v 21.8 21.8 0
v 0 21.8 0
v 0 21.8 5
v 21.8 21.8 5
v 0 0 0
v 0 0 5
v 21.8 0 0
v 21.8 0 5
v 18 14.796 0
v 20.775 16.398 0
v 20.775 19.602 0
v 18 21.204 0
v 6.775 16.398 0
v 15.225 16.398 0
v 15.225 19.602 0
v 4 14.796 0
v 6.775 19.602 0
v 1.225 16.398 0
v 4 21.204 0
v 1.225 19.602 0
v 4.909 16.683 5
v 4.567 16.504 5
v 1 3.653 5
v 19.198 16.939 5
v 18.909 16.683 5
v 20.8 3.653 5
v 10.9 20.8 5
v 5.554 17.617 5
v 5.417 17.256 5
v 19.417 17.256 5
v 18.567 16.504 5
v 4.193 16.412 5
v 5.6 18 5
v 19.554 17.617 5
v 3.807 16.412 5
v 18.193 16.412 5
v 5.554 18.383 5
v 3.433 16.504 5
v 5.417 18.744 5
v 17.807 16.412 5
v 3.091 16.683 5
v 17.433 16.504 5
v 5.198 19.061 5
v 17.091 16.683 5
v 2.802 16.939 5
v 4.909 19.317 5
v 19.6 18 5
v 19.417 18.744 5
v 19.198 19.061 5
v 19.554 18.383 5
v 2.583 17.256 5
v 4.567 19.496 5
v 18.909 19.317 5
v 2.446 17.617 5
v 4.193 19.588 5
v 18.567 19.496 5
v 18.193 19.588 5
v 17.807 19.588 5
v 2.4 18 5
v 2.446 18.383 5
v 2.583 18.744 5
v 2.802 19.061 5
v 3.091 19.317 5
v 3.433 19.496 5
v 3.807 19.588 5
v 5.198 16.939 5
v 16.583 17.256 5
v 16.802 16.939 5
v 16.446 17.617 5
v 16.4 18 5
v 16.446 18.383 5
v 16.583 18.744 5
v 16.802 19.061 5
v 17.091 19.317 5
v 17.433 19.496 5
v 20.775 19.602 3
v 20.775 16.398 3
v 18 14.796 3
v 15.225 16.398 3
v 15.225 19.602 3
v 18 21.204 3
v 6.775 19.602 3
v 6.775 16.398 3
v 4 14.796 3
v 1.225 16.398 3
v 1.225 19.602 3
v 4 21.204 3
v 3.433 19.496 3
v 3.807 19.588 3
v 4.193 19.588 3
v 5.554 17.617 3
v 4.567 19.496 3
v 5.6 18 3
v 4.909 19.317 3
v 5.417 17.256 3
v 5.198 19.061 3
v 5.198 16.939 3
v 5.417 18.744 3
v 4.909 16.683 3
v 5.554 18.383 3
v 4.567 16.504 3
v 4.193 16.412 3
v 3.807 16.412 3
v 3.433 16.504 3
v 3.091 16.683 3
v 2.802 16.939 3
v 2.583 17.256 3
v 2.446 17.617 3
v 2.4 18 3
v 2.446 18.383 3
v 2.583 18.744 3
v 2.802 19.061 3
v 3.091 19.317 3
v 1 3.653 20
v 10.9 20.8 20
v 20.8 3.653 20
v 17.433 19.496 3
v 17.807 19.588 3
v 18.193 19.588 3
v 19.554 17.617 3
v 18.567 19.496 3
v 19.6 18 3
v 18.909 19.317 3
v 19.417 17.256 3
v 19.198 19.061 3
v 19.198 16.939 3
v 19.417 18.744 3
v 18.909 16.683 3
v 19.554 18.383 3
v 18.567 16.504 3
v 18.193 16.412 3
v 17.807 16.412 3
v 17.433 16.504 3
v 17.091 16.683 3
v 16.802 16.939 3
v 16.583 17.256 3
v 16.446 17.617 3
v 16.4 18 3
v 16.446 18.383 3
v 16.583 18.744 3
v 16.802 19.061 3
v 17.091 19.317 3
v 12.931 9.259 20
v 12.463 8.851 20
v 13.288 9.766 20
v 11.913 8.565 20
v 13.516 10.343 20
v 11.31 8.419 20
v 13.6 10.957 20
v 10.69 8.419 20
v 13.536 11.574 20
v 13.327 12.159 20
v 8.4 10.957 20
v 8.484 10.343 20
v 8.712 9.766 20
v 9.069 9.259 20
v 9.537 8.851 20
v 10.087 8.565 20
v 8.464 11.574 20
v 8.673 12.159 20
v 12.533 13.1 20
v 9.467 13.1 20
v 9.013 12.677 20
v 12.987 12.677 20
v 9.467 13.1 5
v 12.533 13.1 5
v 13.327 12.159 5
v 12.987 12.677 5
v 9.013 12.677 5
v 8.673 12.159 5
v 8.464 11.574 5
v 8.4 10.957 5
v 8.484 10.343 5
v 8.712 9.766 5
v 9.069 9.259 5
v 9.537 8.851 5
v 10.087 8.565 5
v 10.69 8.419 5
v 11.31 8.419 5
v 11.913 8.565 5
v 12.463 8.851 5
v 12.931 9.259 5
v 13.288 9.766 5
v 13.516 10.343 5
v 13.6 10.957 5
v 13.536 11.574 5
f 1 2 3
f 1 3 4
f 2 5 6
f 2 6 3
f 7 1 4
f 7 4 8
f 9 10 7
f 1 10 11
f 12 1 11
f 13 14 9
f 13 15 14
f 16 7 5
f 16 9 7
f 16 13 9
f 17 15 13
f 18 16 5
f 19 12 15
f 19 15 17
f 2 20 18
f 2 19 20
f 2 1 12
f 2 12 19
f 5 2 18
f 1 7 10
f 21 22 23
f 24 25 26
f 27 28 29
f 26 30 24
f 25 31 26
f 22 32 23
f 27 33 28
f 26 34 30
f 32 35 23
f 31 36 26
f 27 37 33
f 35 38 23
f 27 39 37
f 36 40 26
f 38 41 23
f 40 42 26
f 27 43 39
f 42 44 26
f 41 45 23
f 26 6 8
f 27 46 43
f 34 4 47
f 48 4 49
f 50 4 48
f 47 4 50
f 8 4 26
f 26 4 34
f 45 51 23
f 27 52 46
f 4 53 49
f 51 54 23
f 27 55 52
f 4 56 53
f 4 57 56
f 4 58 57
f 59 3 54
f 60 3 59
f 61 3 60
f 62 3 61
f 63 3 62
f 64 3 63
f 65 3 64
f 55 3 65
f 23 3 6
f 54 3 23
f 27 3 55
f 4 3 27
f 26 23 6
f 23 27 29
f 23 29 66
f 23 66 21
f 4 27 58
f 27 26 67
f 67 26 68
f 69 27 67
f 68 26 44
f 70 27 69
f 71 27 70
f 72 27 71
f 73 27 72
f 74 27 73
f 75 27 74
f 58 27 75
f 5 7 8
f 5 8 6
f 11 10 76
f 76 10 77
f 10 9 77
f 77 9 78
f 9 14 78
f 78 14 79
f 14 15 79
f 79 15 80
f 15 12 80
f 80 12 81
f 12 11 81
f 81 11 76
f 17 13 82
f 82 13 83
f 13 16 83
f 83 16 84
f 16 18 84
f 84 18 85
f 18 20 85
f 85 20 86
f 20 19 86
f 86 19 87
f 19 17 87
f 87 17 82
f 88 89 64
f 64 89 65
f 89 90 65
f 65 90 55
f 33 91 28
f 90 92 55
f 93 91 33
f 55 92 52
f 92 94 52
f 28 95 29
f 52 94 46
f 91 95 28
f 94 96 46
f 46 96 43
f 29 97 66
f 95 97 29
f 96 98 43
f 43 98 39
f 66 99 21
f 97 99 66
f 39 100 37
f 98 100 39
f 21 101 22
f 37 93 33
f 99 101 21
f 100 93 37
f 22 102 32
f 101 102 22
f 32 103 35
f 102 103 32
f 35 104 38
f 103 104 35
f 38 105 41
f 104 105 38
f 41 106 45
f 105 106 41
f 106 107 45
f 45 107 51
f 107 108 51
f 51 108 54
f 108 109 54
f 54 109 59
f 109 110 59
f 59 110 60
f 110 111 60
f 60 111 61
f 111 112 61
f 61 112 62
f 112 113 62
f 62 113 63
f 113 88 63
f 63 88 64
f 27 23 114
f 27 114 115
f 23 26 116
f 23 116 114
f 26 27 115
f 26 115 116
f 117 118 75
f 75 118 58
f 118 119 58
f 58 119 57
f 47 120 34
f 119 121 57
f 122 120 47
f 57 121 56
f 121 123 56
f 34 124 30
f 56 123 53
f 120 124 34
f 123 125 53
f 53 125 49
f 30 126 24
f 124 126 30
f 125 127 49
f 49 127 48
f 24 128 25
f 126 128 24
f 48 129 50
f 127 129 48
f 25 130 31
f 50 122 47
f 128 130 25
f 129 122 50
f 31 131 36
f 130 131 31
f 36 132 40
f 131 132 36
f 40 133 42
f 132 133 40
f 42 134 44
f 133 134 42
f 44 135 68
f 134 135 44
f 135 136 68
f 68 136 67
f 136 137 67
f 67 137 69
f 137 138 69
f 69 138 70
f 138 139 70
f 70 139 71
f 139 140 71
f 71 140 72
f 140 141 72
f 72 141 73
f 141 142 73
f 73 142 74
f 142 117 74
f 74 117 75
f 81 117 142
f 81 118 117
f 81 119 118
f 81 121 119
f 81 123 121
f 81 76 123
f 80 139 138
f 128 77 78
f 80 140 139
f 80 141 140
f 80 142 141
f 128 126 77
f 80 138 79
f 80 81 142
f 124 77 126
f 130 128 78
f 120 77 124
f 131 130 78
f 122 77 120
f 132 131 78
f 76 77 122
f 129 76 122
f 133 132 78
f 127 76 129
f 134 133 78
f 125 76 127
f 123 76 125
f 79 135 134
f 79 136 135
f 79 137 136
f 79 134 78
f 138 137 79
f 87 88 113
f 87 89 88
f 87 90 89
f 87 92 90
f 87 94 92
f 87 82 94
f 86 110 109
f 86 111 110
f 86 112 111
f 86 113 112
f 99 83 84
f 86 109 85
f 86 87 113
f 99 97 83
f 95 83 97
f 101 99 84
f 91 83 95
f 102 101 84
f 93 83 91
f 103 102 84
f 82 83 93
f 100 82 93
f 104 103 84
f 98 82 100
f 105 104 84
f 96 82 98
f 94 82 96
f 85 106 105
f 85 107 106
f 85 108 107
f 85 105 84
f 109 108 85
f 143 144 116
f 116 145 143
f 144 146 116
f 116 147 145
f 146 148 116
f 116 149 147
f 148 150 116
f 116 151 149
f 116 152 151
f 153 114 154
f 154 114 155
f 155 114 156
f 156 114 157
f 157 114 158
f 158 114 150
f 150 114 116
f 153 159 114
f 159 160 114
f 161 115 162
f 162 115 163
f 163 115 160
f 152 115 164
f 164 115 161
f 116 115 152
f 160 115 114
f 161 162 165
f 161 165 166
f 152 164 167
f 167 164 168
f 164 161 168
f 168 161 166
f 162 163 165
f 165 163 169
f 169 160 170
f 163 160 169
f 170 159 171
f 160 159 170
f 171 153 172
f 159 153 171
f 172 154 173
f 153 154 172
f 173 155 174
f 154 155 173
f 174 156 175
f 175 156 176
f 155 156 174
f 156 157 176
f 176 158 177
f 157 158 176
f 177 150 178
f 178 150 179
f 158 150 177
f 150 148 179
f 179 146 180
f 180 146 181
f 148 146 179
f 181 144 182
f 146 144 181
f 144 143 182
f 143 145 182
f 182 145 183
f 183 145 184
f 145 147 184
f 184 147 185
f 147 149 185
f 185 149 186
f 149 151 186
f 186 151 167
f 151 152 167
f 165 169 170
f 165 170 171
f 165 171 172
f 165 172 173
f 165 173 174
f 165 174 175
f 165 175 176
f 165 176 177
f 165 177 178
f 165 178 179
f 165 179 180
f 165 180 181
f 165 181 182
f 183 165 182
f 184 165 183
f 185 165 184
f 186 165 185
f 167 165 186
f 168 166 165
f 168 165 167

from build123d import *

# Parameters (mm, degrees)
SKETCH_W        = 21.8
SKETCH_H        = 21.8
PAD_DEPTH       = 5
PAD001_DEPTH    = 15
SKETCH002_R     = 1.6
POCKET_DEPTH    = 20.001
POCKET001_DEPTH = 3
POCKET002_DEPTH = 15


with BuildPart() as part:
    # Sketch → Pad (new body)
    with BuildSketch(Plane.XY):
        with Locations((10.9, 10.9)):
            Rectangle(SKETCH_W, SKETCH_H)
    extrude(amount=PAD_DEPTH)

    # Sketch001 (on Face6 of Pad) → Pad001 (join)
    with BuildSketch(Plane.XY.offset(5)):
        Polygon((1, 3.652697), (10.9, 20.8), (20.8, 3.652697), align=None)
    extrude(amount=PAD001_DEPTH)

    # Sketch002 (on Face4 of Pad001) → Pocket (cut, through all)
    with BuildSketch(Plane(origin=(0, 0, 0), x_dir=(1, 0, 0), z_dir=(0, 0, -1))):
        with Locations((4, -18)):
            Circle(SKETCH002_R)
        with Locations((18, -18)):
            Circle(SKETCH002_R)
    extrude(amount=-POCKET_DEPTH, mode=Mode.SUBTRACT)

    # Sketch003 (on Face4 of Pocket) → Pocket001 (cut)
    with BuildSketch(Plane(origin=(0, 0, 0), x_dir=(1, 0, 0), z_dir=(0, 0, -1))):
        Polygon((6.775, -19.602147), (6.775, -16.397853), (4, -14.795706), (1.225, -16.397853), (1.225, -19.602147), (4, -21.204294), align=None)
        Polygon((20.775, -19.602147), (20.775, -16.397853), (18, -14.795706), (15.225, -16.397853), (15.225, -19.602147), (18, -21.204294), align=None)
    extrude(amount=-POCKET001_DEPTH, mode=Mode.SUBTRACT)

    # Sketch004 (on Face26 of Pocket001) → Pocket002 (cut)
    with BuildSketch(Plane.XY.offset(20)):
        with BuildLine():
            ThreePointArc((9.467029, 13.1), (11, 8.4), (12.532971, 13.1))
            Line((9.467029, 13.1), (12.532971, 13.1))
        make_face()
    extrude(amount=-POCKET002_DEPTH, mode=Mode.SUBTRACT)


solid = part.part
